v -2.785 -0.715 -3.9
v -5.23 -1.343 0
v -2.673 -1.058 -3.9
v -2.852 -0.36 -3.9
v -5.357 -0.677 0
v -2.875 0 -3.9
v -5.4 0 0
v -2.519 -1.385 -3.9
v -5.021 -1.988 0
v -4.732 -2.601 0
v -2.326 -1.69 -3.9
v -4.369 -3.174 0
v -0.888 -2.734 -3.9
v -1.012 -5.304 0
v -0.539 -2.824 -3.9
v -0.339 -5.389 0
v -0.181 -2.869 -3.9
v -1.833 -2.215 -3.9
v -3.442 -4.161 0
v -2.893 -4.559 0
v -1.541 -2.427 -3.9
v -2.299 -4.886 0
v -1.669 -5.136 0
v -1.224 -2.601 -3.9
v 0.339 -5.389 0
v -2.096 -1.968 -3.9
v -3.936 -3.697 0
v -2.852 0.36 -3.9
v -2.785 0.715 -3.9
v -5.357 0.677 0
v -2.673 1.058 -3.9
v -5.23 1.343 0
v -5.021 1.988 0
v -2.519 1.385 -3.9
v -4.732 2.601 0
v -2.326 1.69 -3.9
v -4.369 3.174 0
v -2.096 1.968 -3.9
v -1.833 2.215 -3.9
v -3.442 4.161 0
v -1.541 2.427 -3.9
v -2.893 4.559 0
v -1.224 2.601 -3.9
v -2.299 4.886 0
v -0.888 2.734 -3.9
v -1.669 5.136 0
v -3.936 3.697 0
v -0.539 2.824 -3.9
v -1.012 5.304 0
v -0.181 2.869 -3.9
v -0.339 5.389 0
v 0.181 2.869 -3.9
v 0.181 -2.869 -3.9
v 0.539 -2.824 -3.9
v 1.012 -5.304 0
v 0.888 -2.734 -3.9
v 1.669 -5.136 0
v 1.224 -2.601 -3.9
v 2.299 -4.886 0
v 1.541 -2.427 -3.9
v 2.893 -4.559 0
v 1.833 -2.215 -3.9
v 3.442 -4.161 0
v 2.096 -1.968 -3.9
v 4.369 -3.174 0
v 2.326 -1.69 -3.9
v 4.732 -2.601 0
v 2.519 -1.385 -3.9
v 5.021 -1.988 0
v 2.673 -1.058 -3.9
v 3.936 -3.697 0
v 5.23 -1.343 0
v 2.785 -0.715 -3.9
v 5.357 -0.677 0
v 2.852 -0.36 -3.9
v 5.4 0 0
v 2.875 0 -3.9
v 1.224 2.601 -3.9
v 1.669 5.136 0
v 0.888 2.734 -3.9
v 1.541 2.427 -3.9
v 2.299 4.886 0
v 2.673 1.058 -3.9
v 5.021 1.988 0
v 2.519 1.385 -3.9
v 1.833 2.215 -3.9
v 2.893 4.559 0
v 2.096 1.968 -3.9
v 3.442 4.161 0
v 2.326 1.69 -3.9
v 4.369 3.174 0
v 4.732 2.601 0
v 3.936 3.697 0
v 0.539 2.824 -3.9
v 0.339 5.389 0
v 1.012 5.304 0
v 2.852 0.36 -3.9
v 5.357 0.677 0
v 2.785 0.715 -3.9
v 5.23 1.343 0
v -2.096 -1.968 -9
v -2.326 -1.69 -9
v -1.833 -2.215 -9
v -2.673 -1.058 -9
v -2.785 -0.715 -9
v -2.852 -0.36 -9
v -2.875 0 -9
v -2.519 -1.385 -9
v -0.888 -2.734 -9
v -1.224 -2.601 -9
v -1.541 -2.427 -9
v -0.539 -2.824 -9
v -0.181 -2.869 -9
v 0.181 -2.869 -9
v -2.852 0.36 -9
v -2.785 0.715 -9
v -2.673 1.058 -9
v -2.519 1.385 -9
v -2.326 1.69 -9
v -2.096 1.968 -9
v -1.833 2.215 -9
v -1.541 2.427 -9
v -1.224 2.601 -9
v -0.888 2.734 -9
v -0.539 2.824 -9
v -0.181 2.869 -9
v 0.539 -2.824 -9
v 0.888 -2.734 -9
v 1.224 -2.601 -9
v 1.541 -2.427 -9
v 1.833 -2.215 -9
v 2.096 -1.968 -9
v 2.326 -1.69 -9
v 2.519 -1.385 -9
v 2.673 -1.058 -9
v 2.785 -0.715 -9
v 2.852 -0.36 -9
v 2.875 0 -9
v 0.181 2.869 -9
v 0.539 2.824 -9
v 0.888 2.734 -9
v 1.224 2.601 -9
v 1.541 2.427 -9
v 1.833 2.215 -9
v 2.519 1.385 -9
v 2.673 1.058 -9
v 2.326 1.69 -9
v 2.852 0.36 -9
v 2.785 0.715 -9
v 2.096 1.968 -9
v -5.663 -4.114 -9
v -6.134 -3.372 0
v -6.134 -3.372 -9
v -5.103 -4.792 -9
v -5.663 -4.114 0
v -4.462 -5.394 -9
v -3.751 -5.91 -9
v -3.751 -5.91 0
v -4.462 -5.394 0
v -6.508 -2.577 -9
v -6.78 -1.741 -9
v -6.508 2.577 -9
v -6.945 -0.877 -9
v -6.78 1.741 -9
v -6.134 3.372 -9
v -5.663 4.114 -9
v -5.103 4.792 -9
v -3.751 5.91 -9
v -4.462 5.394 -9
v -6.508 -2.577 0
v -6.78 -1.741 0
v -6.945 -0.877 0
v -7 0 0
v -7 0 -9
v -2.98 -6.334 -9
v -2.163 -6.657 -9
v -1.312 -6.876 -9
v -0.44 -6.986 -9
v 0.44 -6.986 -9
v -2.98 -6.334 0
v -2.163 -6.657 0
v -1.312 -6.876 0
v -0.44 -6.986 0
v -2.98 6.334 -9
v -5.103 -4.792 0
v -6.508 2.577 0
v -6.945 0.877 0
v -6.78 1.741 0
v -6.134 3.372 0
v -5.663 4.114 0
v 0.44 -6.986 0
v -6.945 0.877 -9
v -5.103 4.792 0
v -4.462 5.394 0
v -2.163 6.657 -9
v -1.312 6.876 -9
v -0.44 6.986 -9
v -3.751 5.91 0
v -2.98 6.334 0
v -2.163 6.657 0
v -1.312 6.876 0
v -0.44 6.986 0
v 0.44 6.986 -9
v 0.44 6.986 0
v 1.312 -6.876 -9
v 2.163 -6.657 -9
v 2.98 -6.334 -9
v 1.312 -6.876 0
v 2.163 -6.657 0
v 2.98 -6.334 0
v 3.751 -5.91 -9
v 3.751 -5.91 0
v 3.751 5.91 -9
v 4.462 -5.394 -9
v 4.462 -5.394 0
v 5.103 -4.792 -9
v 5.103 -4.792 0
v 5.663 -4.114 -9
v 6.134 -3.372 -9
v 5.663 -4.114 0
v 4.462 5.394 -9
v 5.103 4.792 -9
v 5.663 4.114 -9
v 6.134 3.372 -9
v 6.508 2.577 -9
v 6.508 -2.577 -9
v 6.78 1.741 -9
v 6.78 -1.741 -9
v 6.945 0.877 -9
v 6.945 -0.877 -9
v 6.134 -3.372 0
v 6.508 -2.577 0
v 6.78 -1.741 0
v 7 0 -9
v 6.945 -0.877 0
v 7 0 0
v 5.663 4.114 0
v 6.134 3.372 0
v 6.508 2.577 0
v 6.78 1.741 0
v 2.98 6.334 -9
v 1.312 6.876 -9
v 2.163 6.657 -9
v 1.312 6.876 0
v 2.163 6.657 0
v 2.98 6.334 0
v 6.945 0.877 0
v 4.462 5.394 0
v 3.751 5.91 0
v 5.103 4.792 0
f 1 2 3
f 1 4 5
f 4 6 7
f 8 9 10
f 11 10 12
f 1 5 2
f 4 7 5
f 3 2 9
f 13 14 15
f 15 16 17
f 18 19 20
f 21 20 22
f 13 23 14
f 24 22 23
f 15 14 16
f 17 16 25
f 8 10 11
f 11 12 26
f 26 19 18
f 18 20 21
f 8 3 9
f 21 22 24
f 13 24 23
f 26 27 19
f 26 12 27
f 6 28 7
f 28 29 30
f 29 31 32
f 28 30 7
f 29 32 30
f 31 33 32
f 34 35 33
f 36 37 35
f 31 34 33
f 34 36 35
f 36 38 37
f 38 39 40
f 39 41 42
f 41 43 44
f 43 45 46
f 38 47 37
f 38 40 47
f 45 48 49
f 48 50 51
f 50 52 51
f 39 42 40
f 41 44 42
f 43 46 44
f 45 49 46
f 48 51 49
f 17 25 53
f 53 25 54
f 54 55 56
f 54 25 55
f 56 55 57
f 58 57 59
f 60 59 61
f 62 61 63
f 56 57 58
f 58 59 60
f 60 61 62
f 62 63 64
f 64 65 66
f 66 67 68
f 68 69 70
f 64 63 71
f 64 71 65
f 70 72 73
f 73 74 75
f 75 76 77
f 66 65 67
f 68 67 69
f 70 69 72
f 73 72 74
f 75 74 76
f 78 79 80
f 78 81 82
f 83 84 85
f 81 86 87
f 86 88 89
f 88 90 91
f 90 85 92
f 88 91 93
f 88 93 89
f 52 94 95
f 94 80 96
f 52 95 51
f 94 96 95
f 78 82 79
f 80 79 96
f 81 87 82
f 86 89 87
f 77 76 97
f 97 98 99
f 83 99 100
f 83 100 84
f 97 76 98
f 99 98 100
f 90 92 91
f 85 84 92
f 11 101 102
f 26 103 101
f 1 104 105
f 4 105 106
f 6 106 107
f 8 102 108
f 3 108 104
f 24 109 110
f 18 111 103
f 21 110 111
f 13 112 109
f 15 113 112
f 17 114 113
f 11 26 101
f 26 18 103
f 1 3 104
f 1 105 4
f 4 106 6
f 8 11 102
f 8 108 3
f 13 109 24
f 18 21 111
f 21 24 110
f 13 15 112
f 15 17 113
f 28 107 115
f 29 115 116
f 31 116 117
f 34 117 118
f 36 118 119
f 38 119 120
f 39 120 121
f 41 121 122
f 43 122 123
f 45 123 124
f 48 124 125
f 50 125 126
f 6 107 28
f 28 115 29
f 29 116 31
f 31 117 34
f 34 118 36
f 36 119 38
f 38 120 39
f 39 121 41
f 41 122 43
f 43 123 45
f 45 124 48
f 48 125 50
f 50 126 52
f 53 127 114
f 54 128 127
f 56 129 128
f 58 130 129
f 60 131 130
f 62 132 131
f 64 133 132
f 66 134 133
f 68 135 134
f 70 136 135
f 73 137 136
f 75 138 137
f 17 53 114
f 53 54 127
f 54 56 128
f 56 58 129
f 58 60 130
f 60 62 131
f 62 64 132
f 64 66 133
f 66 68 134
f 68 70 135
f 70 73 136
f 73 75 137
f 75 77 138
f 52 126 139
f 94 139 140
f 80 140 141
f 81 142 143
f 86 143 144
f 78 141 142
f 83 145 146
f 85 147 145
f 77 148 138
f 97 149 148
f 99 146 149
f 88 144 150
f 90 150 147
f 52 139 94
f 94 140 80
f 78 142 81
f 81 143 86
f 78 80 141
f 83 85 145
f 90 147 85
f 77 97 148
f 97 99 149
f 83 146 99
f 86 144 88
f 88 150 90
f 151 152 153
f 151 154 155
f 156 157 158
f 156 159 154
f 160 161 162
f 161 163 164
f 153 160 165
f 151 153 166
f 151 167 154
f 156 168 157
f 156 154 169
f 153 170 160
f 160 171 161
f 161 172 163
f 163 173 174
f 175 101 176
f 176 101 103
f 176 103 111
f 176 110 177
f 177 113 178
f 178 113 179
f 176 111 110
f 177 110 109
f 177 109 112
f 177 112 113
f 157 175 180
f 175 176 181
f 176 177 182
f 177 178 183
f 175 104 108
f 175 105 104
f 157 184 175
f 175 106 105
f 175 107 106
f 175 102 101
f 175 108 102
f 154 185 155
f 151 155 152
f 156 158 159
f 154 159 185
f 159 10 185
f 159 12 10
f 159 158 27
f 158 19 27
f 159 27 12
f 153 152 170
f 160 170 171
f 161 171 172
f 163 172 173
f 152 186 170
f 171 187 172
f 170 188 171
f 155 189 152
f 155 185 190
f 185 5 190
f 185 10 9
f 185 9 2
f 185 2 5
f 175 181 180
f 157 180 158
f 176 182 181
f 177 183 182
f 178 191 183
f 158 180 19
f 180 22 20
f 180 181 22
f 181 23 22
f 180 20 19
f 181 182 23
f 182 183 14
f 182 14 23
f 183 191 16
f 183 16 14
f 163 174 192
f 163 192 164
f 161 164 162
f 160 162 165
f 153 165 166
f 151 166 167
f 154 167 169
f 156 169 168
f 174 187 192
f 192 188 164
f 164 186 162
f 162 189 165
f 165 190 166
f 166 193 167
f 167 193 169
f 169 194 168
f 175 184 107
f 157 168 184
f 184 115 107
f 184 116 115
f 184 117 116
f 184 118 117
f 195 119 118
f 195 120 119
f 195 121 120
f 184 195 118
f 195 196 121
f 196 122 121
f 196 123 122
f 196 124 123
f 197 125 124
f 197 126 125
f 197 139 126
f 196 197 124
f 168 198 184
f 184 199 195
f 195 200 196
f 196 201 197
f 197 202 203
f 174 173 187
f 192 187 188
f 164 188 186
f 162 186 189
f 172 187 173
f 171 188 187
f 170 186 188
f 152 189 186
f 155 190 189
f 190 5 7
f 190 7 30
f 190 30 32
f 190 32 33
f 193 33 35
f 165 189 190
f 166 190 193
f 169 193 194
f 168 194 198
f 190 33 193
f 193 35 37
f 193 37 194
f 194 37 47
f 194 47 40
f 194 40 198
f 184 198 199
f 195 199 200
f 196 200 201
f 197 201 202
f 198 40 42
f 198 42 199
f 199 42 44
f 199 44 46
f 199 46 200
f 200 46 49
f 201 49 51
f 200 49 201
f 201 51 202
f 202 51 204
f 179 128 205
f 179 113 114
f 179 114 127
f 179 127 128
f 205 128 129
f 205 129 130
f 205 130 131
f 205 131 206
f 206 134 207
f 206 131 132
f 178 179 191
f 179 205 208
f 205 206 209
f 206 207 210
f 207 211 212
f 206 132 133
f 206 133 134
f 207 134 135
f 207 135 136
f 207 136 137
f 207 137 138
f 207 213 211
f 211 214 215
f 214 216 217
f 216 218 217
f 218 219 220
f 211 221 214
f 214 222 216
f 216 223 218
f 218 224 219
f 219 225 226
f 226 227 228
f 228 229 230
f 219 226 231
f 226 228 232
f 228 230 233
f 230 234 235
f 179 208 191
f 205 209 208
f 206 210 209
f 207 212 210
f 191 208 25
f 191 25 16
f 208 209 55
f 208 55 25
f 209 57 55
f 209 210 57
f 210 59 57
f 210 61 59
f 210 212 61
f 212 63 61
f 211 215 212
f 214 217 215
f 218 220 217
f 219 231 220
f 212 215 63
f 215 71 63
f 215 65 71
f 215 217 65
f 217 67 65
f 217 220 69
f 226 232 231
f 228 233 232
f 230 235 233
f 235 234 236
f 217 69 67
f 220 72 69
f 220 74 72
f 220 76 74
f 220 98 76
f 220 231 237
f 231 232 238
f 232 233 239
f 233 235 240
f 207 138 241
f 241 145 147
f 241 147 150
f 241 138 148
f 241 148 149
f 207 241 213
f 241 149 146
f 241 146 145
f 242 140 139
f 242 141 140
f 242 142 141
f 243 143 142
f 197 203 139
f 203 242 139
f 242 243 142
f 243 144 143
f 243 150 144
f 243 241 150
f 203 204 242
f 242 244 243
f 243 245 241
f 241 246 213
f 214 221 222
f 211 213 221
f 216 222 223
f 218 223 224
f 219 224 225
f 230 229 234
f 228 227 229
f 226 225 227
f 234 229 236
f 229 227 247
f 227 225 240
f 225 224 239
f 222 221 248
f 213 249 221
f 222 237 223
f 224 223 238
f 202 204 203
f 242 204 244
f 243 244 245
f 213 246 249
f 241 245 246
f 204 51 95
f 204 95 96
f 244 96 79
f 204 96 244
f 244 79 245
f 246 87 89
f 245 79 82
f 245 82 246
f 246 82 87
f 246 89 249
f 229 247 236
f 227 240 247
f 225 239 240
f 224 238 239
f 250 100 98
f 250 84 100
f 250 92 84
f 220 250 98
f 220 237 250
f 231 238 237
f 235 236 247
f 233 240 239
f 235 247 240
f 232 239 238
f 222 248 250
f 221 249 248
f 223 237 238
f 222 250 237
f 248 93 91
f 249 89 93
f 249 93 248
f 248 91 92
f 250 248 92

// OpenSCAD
$fn = 50;

difference() {
	union() {
		translate(v = [0, 0, -9.0]) {
			cylinder(h = 9, r = 7.0);
		}
	}
	union() {
		translate(v = [0, 0, 0]) {
			rotate(a = [0, 0, 0]) {
				difference() {
					union() {
						translate(v = [0, 0, -12.0]) {
							cylinder(h = 12, r = 2.6);
						}
						translate(v = [0, 0, -3.9]) {
							cylinder(h = 3.9, r1 = 2.875, r2 = 5.4);
						}
						translate(v = [0, 0, -12.0]) {
							cylinder(h = 12, r = 2.875);
						}
						translate(v = [0, 0, -12.0]) {
							cylinder(h = 12, r = 2.6);
						}
					}
					union();
				}
			}
		}
	}
}
